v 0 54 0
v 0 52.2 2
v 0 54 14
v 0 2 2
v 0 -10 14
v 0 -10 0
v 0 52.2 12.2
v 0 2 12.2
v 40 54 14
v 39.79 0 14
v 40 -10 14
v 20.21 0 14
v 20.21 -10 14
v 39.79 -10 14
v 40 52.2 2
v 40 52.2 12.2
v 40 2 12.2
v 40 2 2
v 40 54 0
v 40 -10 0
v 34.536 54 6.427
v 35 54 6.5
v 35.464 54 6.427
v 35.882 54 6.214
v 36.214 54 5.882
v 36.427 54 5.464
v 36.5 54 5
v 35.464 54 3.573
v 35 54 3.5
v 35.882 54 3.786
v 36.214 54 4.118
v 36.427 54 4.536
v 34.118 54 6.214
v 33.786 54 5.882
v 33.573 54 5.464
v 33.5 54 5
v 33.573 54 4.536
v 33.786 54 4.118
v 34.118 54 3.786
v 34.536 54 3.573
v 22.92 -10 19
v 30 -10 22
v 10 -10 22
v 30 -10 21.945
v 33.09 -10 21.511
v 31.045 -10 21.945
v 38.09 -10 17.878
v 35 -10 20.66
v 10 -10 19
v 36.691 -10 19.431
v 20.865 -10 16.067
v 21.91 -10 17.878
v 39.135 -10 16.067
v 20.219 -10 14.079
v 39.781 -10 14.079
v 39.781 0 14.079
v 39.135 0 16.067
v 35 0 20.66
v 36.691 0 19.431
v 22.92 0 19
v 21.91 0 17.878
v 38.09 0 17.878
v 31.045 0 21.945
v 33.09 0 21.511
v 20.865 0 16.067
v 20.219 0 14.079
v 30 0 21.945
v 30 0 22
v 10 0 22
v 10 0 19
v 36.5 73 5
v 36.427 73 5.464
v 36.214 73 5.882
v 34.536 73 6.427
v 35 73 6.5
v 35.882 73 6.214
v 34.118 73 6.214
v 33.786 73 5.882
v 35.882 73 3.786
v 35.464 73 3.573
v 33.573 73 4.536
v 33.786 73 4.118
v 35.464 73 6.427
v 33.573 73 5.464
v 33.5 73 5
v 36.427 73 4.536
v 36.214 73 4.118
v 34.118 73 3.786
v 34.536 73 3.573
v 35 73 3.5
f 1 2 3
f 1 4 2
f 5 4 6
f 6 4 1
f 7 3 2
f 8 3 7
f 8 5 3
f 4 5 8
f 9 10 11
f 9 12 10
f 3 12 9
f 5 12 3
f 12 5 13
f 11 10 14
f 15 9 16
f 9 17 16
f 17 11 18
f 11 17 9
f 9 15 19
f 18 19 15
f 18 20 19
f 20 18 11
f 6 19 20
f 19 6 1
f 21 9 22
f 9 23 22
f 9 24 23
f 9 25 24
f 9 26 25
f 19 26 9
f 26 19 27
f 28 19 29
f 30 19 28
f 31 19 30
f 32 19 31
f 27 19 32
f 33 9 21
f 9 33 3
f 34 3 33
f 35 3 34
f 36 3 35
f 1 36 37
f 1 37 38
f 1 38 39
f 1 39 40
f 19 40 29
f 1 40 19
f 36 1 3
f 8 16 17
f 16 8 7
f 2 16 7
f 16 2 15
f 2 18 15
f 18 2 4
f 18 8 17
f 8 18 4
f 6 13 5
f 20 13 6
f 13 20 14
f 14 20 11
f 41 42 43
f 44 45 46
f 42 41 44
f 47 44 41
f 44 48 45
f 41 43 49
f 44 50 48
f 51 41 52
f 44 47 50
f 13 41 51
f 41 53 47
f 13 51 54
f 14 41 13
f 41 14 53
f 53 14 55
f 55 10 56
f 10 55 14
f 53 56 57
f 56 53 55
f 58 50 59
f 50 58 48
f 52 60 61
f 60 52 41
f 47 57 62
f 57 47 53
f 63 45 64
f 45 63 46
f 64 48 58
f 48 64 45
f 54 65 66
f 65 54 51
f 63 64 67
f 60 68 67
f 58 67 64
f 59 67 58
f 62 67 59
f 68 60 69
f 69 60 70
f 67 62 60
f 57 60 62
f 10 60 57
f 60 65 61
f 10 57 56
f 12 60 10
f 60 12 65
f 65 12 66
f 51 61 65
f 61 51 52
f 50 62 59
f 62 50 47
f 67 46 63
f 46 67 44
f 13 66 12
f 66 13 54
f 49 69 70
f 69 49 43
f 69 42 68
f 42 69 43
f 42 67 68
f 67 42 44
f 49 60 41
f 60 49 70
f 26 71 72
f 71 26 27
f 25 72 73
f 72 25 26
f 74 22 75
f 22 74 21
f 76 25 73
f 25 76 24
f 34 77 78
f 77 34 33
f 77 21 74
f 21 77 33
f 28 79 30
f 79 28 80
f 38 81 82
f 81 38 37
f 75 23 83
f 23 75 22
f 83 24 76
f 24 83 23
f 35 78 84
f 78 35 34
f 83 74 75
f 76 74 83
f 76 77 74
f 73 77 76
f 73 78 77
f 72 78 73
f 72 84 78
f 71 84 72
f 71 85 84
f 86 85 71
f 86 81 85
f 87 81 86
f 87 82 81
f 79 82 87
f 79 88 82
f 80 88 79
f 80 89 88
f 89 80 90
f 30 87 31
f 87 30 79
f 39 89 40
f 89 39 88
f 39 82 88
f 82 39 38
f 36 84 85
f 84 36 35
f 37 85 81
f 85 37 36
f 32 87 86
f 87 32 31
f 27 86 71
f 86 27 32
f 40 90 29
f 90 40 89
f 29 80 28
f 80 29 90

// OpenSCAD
difference(){
    cube([40,54,14]);
    translate([-5,2,2]){
        cube([100,50.2,10.2]);
    }
}


translate([0,-10,0]){
    cube([40,10,14]);   
}
translate([30,0,12]){
    rotate([90,0,0]){
        cylinder(10,10,10); 
    }   
}

translate([10,-10,19]){
    cube([20,10,3]);   
}

translate([35,73,5]){
    rotate([90,0,0]){
        cylinder(20,1.5,1.5, $fn=20);
    }
}
